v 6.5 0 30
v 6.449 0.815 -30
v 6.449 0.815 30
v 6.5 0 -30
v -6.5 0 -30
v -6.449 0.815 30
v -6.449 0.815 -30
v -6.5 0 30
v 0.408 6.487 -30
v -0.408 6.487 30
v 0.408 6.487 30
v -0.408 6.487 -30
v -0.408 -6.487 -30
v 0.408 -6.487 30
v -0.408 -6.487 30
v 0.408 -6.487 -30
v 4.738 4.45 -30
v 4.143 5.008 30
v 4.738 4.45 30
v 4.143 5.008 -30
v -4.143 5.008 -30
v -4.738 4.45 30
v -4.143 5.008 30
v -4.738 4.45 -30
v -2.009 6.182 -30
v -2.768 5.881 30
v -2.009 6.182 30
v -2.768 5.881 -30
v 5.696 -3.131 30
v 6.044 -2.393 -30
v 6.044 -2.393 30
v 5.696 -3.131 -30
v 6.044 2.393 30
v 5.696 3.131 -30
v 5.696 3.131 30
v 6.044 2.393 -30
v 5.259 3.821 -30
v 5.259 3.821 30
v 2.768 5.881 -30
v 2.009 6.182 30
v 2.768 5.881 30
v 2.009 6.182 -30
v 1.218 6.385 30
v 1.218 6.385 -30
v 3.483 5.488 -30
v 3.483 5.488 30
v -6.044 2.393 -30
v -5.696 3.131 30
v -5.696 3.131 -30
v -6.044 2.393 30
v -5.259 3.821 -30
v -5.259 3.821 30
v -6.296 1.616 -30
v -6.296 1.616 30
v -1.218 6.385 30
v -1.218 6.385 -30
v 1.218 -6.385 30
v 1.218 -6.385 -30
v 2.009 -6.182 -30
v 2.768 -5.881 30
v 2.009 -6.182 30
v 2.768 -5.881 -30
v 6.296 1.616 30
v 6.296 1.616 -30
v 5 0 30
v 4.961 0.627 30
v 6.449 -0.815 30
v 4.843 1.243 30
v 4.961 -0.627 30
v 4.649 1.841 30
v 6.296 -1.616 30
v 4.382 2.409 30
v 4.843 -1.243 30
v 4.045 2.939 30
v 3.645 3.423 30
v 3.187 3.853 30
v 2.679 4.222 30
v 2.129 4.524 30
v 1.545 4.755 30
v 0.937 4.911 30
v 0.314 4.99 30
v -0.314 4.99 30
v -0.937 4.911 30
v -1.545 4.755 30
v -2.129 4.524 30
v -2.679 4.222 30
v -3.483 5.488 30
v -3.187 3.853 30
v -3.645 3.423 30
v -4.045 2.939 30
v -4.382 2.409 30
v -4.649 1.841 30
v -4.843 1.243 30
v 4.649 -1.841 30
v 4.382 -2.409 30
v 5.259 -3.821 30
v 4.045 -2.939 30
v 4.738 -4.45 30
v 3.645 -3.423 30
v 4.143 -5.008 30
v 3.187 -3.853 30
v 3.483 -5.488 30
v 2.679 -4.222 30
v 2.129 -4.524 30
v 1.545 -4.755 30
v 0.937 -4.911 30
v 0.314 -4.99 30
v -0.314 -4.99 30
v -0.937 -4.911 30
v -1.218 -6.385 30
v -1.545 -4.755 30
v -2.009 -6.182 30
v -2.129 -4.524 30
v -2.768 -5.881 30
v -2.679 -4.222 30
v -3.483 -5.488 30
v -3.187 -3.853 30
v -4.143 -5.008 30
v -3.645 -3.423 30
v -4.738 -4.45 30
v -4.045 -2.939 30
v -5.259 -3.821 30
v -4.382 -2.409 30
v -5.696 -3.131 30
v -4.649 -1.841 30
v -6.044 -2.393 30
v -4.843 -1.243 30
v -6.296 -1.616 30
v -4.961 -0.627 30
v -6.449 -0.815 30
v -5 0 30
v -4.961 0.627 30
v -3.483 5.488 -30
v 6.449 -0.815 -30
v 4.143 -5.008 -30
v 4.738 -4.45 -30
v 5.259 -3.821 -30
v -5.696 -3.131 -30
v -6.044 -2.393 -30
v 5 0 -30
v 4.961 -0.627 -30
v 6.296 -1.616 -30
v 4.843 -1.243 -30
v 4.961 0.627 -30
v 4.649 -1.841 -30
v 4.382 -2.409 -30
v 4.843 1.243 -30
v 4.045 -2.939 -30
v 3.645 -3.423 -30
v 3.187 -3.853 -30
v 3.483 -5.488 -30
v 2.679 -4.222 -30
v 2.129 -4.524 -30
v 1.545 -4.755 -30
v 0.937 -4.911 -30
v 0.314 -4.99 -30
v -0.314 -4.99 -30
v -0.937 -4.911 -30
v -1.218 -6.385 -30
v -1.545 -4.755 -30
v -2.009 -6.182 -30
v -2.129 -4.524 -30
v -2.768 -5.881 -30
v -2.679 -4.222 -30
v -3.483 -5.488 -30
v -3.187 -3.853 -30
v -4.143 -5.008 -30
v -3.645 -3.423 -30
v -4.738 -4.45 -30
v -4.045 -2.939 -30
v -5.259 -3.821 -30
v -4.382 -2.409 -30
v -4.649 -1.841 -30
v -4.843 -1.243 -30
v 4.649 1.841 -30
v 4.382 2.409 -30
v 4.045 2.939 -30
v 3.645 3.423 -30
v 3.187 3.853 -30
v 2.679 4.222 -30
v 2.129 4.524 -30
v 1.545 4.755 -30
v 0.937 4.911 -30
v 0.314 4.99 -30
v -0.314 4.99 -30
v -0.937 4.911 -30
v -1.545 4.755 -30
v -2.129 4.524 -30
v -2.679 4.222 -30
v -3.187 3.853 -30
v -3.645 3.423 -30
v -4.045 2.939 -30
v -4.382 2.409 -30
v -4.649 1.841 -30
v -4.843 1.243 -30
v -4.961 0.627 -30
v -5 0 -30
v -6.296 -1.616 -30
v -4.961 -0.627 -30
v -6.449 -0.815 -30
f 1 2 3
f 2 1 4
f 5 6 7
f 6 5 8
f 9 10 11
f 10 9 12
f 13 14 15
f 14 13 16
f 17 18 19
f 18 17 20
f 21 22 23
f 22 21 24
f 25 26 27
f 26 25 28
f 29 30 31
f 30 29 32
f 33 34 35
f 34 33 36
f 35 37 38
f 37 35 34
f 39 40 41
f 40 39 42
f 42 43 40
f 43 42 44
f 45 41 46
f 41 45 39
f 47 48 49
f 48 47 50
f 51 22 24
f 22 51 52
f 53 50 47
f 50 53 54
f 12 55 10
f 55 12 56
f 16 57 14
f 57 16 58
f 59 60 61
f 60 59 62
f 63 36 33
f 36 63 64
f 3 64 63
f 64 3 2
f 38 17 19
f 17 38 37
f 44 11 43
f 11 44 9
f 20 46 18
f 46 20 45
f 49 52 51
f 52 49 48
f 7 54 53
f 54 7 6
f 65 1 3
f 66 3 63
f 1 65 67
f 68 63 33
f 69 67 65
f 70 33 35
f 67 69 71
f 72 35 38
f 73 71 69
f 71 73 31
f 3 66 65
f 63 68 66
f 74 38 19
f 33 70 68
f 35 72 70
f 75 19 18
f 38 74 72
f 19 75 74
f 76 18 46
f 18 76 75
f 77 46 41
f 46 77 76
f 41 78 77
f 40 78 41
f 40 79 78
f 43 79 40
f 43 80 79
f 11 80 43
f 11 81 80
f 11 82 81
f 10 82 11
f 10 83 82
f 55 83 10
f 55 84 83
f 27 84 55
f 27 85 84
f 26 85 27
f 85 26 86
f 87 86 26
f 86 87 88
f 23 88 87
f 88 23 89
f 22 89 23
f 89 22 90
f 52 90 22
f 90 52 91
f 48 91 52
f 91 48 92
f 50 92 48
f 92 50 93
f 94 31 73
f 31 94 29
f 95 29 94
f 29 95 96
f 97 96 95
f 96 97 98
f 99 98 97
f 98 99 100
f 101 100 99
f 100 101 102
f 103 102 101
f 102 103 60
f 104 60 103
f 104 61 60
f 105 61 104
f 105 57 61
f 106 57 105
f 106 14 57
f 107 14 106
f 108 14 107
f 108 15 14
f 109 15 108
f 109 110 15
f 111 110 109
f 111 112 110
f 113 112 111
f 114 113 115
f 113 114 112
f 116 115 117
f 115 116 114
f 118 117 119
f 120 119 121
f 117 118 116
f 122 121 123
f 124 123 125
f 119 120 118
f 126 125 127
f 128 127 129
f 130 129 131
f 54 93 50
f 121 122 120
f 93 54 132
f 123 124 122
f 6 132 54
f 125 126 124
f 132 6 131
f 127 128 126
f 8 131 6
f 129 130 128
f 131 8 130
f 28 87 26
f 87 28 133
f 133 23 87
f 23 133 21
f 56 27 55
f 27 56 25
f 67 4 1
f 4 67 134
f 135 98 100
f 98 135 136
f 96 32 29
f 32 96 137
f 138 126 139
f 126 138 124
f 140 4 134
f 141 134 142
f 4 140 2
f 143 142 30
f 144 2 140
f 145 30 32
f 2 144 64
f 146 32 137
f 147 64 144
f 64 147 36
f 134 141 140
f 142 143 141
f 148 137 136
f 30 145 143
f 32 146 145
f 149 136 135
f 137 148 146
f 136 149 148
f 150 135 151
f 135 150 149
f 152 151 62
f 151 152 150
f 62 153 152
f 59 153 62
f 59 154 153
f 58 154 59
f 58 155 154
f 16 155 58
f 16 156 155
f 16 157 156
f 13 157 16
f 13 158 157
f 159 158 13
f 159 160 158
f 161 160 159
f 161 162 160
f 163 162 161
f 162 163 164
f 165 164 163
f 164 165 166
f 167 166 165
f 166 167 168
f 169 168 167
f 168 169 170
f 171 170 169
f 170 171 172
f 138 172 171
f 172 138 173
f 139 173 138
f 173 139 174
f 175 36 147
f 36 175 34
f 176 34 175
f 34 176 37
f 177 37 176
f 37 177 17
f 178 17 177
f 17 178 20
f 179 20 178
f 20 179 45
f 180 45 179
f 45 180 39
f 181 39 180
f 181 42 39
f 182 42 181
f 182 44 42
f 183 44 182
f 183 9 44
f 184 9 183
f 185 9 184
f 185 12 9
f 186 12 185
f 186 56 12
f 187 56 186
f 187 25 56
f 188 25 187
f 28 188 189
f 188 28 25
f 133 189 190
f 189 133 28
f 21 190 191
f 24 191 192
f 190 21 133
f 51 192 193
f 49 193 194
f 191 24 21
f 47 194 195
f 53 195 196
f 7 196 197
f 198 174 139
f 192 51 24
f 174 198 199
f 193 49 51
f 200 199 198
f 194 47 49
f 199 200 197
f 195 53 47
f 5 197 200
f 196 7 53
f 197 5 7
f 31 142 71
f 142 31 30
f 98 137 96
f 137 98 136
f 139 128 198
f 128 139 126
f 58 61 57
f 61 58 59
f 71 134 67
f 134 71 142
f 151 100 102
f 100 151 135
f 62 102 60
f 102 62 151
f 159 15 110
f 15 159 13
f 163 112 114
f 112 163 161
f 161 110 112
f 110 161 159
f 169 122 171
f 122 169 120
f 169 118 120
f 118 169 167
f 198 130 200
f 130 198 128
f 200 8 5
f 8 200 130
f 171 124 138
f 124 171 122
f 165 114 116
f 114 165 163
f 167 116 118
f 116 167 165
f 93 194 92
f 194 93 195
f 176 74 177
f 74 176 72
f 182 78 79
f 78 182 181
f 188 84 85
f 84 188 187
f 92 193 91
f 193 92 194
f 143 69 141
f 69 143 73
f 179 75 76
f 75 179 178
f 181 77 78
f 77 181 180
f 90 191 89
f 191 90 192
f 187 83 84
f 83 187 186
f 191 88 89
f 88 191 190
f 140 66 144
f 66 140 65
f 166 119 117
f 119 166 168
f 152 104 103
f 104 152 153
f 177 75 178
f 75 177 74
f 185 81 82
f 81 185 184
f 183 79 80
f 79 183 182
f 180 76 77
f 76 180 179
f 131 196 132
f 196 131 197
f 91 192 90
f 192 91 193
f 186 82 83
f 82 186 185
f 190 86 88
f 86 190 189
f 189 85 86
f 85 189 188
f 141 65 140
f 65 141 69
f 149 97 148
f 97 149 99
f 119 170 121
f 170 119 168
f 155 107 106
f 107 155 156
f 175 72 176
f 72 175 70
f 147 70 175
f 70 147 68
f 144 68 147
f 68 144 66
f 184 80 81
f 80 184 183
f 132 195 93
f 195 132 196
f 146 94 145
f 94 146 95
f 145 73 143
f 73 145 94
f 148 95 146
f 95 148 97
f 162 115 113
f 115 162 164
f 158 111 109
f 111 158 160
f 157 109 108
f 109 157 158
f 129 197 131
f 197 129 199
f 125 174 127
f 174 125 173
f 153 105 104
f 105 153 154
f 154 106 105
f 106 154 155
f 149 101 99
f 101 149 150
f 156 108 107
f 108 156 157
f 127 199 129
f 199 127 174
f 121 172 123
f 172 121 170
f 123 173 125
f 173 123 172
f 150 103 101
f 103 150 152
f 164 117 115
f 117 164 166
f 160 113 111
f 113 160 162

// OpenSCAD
$fn = 50;


difference() {
	union() {
		translate(v = [0, 0, -30.0000000000]) {
			cylinder(h = 60, r = 6.5000000000);
		}
	}
	union() {
		translate(v = [0, 0, -100.0000000000]) {
			cylinder(h = 200, r = 5.0000000000);
		}
	}
}
